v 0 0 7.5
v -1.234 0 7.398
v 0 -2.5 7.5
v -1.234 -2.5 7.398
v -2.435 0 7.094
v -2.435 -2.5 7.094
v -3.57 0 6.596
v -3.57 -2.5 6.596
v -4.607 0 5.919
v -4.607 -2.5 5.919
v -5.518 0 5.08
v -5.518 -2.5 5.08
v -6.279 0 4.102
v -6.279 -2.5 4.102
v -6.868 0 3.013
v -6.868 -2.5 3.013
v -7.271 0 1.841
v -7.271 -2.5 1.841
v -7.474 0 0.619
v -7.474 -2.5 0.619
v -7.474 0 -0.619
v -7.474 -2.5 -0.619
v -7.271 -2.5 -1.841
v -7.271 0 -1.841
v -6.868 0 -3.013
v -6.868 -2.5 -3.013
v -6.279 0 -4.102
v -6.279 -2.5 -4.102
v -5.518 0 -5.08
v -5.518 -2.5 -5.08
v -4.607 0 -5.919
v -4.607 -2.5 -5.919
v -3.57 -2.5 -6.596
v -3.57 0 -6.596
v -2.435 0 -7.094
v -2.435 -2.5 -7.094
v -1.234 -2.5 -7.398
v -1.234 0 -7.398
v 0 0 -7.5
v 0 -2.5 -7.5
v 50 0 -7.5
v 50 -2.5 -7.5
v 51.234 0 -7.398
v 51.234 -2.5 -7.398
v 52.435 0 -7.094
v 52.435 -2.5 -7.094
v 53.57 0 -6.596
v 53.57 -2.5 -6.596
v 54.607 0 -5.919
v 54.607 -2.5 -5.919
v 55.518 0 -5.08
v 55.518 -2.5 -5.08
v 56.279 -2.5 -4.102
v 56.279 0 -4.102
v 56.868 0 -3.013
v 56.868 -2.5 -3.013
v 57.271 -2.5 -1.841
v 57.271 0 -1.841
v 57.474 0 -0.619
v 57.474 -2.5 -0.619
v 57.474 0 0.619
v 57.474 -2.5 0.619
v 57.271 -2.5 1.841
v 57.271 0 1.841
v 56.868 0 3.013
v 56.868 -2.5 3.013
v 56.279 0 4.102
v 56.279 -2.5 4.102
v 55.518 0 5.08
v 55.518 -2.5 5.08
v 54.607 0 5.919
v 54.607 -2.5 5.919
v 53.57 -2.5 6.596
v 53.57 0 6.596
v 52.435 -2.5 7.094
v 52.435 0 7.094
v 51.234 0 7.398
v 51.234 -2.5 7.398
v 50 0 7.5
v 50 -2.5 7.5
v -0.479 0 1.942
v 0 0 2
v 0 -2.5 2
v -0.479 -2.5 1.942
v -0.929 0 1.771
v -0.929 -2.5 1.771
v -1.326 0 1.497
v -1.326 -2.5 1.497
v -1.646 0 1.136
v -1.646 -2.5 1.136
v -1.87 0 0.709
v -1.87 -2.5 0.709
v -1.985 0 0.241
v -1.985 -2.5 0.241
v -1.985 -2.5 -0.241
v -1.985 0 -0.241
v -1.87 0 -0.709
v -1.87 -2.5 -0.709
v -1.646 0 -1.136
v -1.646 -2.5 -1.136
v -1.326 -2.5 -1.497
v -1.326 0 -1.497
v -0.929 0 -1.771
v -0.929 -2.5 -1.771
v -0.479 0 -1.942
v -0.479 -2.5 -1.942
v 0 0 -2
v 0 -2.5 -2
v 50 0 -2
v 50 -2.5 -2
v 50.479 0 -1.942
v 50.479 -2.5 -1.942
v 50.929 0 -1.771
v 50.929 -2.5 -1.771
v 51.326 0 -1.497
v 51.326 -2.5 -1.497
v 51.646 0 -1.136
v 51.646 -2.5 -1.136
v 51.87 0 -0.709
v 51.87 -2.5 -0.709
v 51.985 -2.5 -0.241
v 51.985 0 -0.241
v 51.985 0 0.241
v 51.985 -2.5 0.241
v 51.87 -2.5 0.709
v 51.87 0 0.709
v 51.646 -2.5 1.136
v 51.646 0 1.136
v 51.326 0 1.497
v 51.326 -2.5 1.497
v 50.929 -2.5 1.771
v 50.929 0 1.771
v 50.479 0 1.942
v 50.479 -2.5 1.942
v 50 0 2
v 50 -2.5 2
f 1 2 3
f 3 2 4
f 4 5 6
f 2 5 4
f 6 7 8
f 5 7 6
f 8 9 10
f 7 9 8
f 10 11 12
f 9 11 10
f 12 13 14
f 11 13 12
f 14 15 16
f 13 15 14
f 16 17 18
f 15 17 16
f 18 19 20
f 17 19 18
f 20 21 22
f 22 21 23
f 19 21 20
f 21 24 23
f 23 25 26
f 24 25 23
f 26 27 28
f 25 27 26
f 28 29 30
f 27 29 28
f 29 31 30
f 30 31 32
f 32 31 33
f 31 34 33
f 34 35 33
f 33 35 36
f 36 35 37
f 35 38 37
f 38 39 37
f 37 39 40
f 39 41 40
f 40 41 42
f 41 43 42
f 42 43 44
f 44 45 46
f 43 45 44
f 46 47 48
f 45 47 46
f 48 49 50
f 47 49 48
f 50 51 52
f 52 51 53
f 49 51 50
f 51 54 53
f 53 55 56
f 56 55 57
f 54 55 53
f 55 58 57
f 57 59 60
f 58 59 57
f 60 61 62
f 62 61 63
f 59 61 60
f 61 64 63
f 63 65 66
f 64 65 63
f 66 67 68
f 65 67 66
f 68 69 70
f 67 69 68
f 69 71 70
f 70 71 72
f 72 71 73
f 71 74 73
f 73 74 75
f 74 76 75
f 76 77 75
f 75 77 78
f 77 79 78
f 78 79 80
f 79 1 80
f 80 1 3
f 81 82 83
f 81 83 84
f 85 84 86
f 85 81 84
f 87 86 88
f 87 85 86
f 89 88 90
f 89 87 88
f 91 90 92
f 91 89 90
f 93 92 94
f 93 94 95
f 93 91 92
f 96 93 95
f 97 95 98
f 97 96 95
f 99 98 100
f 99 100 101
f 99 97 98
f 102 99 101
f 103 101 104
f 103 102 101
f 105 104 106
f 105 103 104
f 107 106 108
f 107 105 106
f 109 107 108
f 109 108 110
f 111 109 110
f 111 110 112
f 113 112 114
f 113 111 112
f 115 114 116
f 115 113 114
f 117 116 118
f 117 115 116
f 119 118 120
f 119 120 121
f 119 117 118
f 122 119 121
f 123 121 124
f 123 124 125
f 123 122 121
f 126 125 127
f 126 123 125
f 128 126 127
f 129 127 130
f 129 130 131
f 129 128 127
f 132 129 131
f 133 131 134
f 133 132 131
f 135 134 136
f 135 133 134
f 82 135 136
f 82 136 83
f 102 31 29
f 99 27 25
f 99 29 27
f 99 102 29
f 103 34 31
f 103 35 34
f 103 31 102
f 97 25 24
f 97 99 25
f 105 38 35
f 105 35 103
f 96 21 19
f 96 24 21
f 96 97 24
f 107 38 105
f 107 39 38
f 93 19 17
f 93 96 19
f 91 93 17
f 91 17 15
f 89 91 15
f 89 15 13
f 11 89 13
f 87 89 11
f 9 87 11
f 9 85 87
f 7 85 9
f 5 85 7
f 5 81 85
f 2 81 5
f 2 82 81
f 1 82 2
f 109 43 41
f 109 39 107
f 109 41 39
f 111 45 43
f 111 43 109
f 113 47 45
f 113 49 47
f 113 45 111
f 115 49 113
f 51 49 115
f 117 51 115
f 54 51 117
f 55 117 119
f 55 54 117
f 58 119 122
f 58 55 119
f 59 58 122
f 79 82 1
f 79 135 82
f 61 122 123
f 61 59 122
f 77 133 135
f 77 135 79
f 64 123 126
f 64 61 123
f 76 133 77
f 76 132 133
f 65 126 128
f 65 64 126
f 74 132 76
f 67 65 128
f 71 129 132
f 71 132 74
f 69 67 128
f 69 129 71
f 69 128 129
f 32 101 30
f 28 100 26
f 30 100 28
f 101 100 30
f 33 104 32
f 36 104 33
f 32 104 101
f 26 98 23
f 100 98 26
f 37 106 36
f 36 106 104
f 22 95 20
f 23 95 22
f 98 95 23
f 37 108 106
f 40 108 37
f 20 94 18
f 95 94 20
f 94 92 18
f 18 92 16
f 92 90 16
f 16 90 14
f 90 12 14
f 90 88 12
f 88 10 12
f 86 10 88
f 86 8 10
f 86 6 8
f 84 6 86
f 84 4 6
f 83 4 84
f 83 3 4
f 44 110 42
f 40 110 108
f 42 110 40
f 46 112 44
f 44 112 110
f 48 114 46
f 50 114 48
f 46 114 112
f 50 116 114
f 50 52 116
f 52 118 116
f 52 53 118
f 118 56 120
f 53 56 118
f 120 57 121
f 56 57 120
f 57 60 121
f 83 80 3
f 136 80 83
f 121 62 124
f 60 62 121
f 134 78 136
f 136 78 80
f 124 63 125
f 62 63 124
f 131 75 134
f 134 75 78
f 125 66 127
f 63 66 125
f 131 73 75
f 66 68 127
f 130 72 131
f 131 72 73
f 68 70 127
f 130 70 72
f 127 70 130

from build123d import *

# Parameters (mm, degrees)
PAD_DEPTH = 2.5


with BuildPart() as part:
    # Sketch → Pad (new body)
    with BuildSketch(Plane.XZ):
        with BuildLine():
            ThreePointArc((0, 7.5), (-7.5, 0), (0, -7.5))
            Line((0, -7.5), (50, -7.5))
            ThreePointArc((50, -7.5), (57.5, 0), (50, 7.5))
            Line((50, 7.5), (0, 7.5))
        make_face()
        with BuildLine():
            ThreePointArc((0, 2), (-2, 0), (0, -2))
            Line((0, -2), (50, -2))
            ThreePointArc((50, -2), (52, 0), (50, 2))
            Line((50, 2), (0, 2))
        make_face(mode=Mode.SUBTRACT)
    extrude(amount=PAD_DEPTH)


solid = part.part
